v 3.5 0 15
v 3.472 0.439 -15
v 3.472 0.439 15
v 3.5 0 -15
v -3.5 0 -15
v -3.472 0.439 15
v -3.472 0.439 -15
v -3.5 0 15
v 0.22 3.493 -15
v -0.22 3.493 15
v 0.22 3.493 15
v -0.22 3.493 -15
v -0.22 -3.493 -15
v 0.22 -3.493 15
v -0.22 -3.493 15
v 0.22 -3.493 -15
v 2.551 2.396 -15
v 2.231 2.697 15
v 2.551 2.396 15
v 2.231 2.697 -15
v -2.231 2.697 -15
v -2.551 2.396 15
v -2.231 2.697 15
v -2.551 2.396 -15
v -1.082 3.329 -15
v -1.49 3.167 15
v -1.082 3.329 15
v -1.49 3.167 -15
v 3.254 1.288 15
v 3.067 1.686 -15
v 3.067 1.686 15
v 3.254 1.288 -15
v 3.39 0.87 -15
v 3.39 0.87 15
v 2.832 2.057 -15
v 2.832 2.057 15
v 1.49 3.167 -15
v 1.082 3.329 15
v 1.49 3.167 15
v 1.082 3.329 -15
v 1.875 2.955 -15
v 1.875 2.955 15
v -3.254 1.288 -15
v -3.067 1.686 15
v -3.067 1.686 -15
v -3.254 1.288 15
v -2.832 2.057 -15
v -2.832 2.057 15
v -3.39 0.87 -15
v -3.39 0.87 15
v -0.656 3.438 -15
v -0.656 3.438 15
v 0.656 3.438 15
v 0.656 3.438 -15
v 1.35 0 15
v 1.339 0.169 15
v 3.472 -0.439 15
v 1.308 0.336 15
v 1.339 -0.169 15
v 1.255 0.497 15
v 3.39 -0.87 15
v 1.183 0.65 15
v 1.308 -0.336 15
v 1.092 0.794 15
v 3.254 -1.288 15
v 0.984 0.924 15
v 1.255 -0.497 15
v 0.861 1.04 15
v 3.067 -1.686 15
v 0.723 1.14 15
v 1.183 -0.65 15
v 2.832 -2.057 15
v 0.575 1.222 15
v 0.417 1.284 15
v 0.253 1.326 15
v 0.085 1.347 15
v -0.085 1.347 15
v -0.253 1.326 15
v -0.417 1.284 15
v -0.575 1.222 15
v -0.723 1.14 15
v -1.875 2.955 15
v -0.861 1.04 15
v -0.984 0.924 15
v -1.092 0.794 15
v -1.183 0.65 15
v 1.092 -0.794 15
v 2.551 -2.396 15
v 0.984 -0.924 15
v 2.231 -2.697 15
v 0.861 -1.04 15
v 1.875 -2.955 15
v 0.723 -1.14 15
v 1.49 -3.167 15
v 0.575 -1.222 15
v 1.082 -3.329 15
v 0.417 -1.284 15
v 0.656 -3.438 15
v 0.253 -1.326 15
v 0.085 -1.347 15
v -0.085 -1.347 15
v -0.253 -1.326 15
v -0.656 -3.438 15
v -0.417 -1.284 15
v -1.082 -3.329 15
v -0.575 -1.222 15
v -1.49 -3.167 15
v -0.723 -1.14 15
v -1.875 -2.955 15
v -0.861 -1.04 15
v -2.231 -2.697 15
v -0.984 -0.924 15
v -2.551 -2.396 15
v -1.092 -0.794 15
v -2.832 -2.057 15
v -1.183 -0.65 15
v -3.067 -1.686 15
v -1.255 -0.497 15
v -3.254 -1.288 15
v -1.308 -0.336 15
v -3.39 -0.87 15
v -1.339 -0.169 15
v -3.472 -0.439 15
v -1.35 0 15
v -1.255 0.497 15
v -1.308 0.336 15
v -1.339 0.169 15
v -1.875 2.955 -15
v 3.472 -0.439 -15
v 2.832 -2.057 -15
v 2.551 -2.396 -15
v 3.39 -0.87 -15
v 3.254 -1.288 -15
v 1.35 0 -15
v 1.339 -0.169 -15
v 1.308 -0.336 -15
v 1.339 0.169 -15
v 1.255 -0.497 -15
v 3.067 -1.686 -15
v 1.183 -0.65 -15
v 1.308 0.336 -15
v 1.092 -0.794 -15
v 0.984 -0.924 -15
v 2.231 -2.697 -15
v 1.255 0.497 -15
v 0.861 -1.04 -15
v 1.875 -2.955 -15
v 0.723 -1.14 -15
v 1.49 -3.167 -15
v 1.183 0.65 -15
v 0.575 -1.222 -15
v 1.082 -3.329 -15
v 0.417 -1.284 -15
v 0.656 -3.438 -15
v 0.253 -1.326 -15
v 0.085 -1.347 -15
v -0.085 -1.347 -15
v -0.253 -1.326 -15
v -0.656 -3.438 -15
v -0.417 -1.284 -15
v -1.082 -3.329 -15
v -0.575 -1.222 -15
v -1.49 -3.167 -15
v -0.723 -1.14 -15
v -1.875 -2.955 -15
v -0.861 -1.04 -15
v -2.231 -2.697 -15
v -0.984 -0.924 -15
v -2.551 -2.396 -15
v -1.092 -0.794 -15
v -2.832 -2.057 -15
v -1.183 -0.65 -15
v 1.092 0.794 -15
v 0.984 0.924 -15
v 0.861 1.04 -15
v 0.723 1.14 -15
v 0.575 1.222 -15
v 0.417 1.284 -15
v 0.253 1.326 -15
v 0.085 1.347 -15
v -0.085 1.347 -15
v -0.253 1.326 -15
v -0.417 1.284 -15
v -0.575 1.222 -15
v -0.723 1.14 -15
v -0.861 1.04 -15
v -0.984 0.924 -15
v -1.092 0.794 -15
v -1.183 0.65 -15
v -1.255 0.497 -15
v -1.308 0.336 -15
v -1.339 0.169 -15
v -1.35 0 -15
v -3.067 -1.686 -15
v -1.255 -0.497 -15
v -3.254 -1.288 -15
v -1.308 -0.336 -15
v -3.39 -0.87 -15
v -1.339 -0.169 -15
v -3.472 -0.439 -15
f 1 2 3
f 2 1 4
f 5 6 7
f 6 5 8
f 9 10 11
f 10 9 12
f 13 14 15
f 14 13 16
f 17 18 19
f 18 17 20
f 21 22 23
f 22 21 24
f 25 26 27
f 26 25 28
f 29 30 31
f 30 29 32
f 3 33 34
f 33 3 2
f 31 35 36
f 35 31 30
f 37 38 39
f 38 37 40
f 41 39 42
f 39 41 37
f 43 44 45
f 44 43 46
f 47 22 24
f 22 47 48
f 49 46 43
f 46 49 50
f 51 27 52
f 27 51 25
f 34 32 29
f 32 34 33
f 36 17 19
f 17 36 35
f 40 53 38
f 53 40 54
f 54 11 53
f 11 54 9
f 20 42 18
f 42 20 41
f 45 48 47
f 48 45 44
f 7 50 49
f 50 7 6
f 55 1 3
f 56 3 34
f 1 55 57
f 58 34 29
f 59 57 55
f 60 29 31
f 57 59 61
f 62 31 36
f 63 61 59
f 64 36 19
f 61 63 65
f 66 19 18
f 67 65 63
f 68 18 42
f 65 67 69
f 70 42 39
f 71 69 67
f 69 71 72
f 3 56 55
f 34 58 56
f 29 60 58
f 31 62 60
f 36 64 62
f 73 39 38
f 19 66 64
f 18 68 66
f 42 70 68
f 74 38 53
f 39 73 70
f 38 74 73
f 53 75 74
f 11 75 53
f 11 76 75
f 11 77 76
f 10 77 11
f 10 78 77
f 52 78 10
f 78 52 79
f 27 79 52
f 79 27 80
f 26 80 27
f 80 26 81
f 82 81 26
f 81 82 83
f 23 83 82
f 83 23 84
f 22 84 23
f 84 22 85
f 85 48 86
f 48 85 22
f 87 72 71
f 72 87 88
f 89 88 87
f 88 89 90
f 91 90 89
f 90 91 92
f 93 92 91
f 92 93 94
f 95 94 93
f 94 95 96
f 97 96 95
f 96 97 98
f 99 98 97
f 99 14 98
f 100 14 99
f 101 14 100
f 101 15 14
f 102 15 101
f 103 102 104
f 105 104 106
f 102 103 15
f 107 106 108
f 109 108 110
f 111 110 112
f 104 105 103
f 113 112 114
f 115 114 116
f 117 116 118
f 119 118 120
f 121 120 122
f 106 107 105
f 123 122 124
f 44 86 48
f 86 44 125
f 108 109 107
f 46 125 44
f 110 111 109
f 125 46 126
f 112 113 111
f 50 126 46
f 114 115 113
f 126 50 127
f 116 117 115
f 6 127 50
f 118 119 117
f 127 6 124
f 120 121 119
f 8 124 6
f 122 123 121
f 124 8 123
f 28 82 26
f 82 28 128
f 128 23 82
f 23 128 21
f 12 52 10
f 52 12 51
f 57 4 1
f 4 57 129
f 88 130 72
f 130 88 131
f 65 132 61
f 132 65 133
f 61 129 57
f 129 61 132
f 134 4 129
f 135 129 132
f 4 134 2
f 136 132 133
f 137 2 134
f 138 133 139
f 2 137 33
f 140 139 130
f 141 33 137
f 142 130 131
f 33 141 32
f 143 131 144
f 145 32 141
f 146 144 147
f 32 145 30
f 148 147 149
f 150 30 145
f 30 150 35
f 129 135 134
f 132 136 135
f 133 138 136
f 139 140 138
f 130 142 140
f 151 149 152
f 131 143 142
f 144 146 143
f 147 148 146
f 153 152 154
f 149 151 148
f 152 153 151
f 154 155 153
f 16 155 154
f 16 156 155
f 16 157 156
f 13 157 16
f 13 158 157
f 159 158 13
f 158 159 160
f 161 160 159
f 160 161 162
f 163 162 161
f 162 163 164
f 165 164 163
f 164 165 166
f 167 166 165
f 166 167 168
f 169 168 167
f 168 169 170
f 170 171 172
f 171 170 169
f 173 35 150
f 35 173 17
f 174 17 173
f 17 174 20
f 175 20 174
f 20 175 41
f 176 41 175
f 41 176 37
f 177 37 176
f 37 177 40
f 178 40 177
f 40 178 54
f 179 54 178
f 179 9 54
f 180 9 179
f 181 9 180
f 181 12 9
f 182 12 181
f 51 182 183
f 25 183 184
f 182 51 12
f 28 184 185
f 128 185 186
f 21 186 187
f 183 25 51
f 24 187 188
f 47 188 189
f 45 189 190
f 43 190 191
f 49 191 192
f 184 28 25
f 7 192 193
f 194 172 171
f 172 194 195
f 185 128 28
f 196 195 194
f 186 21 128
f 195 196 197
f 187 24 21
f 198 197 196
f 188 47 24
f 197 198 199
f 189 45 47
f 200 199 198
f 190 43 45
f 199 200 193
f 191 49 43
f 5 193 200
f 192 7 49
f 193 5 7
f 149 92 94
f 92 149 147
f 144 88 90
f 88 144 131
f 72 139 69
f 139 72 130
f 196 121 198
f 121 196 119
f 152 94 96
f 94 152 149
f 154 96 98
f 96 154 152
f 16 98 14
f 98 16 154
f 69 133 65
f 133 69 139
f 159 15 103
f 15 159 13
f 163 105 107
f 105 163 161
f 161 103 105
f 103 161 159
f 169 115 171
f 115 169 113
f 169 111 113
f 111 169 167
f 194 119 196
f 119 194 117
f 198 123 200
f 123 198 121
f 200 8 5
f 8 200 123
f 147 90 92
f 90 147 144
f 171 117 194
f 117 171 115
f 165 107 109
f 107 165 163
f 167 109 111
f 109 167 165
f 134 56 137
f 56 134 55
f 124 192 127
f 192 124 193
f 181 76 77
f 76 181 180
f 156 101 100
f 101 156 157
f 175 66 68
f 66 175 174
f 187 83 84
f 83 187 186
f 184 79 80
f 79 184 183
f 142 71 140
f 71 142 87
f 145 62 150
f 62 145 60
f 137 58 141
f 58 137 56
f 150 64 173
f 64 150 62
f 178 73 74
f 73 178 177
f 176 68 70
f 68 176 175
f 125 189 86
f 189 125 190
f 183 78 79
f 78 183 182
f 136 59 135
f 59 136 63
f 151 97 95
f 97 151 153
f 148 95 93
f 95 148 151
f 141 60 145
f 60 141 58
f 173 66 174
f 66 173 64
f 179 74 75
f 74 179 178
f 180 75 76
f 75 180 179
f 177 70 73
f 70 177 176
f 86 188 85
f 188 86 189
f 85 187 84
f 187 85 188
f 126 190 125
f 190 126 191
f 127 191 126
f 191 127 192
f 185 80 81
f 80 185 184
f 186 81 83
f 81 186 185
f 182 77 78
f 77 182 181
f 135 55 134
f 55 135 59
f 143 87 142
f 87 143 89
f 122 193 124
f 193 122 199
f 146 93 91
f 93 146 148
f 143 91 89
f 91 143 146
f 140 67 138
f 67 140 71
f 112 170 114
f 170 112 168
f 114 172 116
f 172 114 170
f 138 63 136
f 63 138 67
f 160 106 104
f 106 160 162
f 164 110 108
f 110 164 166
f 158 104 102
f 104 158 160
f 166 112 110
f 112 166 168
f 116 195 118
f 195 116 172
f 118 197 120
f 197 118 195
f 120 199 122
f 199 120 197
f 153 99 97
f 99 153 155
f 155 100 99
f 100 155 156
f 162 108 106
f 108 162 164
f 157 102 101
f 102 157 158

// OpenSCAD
$fn = 50;


difference() {
	union() {
		translate(v = [0, 0, -15.0000000000]) {
			cylinder(h = 30, r = 3.5000000000);
		}
	}
	union() {
		translate(v = [0, 0, -100.0000000000]) {
			cylinder(h = 200, r = 1.3500000000);
		}
	}
}
